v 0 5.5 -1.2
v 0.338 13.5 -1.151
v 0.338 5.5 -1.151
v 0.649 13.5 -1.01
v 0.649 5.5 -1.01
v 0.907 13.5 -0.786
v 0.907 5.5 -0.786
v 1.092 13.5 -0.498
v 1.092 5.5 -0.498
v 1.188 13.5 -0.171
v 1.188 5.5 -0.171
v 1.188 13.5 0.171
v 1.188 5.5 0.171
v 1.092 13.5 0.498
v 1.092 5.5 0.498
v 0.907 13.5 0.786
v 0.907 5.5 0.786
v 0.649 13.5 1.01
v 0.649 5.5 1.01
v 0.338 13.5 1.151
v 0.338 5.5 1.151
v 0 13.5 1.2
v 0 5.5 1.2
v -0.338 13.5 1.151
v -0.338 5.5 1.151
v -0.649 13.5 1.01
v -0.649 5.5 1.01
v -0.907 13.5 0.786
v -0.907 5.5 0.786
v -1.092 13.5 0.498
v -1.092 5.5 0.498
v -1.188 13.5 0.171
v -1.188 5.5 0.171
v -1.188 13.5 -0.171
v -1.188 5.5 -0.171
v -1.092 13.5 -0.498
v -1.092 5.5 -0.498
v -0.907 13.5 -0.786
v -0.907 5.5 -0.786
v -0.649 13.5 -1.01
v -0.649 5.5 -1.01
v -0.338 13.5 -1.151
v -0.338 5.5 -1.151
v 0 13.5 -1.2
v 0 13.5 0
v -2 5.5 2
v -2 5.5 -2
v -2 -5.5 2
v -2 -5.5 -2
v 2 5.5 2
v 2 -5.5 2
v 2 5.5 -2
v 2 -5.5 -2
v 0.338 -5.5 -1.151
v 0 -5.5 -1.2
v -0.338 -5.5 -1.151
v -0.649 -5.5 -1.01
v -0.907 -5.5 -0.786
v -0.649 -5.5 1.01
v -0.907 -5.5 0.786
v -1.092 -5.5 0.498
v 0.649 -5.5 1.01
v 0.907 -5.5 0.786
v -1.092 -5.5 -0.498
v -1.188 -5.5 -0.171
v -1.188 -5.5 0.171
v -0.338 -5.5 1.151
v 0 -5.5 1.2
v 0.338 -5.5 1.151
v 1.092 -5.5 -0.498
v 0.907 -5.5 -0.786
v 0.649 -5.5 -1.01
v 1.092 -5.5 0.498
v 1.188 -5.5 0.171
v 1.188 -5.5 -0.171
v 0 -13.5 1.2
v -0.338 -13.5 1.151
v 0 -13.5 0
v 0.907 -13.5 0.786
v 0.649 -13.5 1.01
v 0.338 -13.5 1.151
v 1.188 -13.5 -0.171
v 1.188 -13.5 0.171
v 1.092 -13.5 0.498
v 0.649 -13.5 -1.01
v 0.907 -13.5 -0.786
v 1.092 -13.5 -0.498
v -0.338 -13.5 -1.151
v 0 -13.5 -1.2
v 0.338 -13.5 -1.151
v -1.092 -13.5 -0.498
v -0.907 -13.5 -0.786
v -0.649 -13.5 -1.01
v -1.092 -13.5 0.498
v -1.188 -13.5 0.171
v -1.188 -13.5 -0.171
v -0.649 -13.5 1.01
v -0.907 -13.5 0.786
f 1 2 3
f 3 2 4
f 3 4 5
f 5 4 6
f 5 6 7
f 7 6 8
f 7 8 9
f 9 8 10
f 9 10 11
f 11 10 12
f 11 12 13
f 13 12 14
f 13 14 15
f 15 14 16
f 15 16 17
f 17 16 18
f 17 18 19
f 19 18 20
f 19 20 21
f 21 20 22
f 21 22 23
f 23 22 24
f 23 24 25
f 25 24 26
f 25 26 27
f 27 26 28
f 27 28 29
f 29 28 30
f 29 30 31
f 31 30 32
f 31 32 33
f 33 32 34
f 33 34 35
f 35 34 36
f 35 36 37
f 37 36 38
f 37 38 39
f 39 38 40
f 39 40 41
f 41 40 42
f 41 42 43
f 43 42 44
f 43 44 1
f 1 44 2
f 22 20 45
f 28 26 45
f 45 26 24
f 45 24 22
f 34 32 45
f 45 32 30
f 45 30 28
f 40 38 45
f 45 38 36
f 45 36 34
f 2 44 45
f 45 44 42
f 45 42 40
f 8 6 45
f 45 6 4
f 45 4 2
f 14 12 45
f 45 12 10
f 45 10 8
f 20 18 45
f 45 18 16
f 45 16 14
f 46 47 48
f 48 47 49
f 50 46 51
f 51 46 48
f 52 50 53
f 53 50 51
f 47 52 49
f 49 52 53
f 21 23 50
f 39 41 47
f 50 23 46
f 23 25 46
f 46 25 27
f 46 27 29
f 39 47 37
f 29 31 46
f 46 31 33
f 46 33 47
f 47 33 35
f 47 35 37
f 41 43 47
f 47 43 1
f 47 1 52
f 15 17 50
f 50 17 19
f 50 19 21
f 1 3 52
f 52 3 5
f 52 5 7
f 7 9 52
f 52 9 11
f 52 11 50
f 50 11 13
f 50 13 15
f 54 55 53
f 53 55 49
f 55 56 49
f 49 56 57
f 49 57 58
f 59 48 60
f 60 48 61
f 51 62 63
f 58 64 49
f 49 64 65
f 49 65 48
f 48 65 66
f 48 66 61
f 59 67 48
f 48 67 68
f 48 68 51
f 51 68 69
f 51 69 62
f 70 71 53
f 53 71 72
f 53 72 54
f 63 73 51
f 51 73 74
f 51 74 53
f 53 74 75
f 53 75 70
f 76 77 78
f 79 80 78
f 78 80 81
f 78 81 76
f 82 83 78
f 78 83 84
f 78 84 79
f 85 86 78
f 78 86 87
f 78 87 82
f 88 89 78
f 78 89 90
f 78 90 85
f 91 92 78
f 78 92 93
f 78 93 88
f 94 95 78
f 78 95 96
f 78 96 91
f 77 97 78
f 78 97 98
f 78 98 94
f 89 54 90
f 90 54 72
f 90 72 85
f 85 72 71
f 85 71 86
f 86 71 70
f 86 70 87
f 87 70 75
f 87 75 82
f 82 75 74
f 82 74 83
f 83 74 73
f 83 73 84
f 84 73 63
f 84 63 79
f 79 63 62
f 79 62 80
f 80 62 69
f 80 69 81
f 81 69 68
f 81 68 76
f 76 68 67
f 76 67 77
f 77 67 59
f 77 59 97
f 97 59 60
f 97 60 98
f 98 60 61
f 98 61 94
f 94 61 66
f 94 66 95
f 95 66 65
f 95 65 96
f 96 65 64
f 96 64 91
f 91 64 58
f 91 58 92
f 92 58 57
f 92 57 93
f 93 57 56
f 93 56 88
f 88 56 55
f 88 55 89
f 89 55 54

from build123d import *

# Parameters (mm, degrees)
SKETCH1_R           = 1.2
BOSS_EXTRUDE1_DEPTH = 13.5
SKETCH2_W           = 4
SKETCH2_H           = 4
BOSS_EXTRUDE2_DEPTH = 5.5


with BuildPart() as part:
    # Sketch1 → Boss-Extrude1 (new body, symmetric)
    with BuildSketch(Plane(origin=(0, 0, 0), x_dir=(1, 0, 0), z_dir=(0, 1, 0))):
        Circle(SKETCH1_R)
    extrude(amount=BOSS_EXTRUDE1_DEPTH, both=True)

    # Sketch2 → Boss-Extrude2 (add, symmetric)
    with BuildSketch(Plane(origin=(0, 0, 0), x_dir=(1, 0, 0), z_dir=(0, 1, 0))):
        Rectangle(SKETCH2_W, SKETCH2_H)
    extrude(amount=BOSS_EXTRUDE2_DEPTH, both=True)


solid = part.part
